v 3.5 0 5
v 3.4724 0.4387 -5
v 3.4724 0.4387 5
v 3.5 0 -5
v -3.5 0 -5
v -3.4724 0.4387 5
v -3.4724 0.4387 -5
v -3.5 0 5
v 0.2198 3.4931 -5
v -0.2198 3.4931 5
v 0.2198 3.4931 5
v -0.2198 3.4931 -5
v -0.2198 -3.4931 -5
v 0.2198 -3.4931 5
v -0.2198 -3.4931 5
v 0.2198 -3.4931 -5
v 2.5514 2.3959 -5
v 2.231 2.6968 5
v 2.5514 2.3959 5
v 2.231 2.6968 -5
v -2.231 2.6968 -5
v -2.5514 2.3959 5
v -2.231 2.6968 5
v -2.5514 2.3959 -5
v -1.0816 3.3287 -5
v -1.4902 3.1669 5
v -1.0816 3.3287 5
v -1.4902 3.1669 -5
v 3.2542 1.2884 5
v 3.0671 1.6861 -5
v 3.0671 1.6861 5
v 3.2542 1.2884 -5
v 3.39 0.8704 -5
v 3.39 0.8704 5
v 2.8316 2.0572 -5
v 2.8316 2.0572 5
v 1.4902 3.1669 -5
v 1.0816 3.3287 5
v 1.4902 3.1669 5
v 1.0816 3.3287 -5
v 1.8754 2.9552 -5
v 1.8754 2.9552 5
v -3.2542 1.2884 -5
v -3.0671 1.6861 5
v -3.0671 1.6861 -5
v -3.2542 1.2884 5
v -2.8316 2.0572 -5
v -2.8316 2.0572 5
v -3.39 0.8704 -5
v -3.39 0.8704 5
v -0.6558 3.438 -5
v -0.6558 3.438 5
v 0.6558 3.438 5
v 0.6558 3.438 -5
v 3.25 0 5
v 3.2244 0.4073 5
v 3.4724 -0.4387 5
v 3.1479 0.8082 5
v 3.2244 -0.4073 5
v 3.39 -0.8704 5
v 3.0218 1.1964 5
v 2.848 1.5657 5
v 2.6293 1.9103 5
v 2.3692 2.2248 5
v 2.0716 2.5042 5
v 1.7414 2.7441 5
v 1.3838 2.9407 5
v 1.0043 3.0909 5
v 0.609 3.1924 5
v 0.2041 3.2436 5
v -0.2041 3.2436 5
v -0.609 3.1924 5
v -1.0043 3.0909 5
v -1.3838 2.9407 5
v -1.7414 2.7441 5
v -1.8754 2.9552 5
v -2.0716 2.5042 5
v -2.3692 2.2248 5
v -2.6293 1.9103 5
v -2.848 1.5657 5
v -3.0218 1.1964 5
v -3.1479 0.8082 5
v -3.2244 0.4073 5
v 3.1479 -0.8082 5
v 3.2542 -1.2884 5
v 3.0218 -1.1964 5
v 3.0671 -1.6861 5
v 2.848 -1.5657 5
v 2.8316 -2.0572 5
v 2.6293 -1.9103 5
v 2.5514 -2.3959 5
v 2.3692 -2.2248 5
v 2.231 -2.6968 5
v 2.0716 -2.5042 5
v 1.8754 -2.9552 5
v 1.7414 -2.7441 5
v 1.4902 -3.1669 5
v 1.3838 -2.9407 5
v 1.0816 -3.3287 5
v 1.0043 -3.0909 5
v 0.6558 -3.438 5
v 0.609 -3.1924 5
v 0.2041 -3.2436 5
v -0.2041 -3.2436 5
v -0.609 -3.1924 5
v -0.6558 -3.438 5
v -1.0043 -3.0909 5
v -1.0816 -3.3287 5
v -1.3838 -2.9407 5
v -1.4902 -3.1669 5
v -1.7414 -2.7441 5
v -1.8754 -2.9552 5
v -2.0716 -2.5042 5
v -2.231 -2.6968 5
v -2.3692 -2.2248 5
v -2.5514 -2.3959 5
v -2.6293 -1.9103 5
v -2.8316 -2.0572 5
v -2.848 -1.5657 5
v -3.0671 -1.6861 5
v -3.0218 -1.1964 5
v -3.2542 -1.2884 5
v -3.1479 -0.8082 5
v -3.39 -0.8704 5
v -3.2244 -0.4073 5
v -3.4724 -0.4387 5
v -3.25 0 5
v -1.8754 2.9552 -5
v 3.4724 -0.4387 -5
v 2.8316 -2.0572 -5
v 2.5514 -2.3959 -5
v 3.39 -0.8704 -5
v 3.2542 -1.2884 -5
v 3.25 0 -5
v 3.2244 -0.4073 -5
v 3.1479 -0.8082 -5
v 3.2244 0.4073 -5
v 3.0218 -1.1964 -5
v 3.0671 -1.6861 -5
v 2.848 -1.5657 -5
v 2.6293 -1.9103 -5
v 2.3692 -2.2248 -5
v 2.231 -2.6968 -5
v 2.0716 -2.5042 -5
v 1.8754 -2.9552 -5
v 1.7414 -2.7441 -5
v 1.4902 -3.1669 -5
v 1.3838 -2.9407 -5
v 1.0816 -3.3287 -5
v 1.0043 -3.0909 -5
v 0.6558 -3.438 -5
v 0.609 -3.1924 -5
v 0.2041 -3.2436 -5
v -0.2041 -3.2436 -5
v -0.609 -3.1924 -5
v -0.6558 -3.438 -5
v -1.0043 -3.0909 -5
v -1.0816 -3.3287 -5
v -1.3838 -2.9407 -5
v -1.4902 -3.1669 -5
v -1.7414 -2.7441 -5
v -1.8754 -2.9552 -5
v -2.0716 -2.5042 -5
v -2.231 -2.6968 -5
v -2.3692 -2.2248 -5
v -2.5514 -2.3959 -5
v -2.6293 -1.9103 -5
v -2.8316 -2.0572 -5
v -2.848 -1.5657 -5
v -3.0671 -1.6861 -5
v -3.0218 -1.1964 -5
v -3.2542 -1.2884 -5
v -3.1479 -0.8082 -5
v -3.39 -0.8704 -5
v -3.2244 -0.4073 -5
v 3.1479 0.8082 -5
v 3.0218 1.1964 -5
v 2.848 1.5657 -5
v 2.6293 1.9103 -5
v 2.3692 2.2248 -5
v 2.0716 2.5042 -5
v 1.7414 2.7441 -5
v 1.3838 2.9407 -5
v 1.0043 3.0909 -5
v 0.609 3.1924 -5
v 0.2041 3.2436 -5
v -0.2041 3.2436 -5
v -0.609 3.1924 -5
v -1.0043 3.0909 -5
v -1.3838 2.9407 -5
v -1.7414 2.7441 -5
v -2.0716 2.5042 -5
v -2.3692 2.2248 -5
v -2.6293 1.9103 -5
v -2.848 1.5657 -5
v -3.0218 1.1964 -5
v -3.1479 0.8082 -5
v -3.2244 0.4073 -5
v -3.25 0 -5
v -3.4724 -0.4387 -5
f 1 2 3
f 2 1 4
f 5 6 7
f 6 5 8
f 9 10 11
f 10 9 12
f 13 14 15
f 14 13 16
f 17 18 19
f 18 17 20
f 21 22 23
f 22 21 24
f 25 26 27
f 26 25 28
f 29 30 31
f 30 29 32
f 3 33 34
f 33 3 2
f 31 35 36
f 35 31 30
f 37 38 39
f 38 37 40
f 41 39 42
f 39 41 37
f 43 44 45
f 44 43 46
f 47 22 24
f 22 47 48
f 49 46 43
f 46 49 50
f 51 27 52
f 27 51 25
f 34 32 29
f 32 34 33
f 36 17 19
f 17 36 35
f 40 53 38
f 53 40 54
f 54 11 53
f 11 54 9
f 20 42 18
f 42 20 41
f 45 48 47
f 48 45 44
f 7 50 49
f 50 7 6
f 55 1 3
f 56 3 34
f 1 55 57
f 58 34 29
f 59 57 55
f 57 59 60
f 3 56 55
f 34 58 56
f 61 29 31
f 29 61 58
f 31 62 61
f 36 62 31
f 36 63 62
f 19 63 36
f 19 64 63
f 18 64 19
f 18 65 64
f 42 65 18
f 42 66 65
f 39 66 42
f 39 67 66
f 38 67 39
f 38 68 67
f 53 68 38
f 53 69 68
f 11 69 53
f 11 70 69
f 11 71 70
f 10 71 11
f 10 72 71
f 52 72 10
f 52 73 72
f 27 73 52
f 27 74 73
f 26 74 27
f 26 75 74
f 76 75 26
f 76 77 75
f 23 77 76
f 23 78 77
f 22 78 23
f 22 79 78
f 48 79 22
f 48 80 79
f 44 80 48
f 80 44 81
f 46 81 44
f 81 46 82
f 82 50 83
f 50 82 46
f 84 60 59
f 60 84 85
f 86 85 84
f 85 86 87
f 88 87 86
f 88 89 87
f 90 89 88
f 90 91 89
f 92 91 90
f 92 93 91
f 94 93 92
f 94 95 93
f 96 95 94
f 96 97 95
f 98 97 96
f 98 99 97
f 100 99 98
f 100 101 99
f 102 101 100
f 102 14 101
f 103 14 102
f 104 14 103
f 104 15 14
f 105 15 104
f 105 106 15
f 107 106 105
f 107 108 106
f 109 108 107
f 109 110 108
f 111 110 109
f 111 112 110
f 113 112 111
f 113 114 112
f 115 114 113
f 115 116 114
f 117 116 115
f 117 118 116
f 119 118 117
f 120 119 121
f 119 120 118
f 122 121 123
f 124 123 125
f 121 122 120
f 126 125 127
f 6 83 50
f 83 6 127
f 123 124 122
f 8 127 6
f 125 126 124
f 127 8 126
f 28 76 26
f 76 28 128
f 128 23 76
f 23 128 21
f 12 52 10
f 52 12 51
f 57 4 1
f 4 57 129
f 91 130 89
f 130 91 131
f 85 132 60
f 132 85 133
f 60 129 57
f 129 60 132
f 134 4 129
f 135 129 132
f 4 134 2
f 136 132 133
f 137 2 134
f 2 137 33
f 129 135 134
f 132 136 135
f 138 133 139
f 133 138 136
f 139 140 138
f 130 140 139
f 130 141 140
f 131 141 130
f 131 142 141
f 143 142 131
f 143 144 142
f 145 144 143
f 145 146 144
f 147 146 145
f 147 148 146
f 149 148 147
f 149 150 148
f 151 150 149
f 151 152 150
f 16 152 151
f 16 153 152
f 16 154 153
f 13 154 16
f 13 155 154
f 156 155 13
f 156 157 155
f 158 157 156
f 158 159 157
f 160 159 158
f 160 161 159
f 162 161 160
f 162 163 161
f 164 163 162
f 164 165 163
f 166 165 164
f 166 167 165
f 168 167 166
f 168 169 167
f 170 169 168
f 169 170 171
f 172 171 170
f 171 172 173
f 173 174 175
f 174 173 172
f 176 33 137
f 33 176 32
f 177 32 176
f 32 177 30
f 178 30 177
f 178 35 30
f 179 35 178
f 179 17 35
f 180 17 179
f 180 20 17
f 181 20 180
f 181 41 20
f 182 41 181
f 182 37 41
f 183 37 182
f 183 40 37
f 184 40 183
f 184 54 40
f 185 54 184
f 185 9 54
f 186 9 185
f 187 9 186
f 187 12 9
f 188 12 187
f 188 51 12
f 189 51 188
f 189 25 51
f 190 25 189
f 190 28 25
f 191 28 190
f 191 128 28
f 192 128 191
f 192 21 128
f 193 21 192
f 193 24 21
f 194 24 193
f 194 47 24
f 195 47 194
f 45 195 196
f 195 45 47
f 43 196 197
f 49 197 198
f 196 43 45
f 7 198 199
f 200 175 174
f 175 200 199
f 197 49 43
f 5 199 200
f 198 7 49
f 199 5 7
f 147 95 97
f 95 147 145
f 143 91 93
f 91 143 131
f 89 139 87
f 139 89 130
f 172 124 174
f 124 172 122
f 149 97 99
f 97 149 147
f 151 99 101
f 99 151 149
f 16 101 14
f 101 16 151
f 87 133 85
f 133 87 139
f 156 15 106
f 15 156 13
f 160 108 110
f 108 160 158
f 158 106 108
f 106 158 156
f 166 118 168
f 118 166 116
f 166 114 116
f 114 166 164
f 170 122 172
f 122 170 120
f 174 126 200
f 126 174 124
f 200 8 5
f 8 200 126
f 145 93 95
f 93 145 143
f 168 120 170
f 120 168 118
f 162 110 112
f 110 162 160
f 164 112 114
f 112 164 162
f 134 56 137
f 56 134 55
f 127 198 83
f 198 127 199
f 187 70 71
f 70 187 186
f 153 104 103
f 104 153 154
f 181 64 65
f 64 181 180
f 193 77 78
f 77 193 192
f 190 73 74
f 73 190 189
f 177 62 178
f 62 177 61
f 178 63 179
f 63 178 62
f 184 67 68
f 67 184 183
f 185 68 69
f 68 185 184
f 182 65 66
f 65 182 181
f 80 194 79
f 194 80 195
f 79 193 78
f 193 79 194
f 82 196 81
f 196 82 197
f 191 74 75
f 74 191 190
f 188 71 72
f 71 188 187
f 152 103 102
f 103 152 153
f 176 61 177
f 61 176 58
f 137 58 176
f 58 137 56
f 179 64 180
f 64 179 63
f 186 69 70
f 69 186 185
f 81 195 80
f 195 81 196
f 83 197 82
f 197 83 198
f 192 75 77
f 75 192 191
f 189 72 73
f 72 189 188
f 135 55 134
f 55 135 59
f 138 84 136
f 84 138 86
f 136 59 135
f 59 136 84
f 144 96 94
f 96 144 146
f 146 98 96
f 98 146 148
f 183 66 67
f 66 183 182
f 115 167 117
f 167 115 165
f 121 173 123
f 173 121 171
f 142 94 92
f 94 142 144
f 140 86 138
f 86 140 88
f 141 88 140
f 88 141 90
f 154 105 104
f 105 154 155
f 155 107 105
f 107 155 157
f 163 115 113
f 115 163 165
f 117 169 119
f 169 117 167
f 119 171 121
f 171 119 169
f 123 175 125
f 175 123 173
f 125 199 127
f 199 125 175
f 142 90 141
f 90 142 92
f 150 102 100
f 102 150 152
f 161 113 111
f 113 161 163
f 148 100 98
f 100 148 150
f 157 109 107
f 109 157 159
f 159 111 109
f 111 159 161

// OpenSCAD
$fn = 50;


difference() {
	union() {
		translate(v = [0, 0, -5.0000000000]) {
			cylinder(h = 10, r = 3.5000000000);
		}
	}
	union() {
		translate(v = [0, 0, -100.0000000000]) {
			cylinder(h = 200, r = 3.2500000000);
		}
	}
}
